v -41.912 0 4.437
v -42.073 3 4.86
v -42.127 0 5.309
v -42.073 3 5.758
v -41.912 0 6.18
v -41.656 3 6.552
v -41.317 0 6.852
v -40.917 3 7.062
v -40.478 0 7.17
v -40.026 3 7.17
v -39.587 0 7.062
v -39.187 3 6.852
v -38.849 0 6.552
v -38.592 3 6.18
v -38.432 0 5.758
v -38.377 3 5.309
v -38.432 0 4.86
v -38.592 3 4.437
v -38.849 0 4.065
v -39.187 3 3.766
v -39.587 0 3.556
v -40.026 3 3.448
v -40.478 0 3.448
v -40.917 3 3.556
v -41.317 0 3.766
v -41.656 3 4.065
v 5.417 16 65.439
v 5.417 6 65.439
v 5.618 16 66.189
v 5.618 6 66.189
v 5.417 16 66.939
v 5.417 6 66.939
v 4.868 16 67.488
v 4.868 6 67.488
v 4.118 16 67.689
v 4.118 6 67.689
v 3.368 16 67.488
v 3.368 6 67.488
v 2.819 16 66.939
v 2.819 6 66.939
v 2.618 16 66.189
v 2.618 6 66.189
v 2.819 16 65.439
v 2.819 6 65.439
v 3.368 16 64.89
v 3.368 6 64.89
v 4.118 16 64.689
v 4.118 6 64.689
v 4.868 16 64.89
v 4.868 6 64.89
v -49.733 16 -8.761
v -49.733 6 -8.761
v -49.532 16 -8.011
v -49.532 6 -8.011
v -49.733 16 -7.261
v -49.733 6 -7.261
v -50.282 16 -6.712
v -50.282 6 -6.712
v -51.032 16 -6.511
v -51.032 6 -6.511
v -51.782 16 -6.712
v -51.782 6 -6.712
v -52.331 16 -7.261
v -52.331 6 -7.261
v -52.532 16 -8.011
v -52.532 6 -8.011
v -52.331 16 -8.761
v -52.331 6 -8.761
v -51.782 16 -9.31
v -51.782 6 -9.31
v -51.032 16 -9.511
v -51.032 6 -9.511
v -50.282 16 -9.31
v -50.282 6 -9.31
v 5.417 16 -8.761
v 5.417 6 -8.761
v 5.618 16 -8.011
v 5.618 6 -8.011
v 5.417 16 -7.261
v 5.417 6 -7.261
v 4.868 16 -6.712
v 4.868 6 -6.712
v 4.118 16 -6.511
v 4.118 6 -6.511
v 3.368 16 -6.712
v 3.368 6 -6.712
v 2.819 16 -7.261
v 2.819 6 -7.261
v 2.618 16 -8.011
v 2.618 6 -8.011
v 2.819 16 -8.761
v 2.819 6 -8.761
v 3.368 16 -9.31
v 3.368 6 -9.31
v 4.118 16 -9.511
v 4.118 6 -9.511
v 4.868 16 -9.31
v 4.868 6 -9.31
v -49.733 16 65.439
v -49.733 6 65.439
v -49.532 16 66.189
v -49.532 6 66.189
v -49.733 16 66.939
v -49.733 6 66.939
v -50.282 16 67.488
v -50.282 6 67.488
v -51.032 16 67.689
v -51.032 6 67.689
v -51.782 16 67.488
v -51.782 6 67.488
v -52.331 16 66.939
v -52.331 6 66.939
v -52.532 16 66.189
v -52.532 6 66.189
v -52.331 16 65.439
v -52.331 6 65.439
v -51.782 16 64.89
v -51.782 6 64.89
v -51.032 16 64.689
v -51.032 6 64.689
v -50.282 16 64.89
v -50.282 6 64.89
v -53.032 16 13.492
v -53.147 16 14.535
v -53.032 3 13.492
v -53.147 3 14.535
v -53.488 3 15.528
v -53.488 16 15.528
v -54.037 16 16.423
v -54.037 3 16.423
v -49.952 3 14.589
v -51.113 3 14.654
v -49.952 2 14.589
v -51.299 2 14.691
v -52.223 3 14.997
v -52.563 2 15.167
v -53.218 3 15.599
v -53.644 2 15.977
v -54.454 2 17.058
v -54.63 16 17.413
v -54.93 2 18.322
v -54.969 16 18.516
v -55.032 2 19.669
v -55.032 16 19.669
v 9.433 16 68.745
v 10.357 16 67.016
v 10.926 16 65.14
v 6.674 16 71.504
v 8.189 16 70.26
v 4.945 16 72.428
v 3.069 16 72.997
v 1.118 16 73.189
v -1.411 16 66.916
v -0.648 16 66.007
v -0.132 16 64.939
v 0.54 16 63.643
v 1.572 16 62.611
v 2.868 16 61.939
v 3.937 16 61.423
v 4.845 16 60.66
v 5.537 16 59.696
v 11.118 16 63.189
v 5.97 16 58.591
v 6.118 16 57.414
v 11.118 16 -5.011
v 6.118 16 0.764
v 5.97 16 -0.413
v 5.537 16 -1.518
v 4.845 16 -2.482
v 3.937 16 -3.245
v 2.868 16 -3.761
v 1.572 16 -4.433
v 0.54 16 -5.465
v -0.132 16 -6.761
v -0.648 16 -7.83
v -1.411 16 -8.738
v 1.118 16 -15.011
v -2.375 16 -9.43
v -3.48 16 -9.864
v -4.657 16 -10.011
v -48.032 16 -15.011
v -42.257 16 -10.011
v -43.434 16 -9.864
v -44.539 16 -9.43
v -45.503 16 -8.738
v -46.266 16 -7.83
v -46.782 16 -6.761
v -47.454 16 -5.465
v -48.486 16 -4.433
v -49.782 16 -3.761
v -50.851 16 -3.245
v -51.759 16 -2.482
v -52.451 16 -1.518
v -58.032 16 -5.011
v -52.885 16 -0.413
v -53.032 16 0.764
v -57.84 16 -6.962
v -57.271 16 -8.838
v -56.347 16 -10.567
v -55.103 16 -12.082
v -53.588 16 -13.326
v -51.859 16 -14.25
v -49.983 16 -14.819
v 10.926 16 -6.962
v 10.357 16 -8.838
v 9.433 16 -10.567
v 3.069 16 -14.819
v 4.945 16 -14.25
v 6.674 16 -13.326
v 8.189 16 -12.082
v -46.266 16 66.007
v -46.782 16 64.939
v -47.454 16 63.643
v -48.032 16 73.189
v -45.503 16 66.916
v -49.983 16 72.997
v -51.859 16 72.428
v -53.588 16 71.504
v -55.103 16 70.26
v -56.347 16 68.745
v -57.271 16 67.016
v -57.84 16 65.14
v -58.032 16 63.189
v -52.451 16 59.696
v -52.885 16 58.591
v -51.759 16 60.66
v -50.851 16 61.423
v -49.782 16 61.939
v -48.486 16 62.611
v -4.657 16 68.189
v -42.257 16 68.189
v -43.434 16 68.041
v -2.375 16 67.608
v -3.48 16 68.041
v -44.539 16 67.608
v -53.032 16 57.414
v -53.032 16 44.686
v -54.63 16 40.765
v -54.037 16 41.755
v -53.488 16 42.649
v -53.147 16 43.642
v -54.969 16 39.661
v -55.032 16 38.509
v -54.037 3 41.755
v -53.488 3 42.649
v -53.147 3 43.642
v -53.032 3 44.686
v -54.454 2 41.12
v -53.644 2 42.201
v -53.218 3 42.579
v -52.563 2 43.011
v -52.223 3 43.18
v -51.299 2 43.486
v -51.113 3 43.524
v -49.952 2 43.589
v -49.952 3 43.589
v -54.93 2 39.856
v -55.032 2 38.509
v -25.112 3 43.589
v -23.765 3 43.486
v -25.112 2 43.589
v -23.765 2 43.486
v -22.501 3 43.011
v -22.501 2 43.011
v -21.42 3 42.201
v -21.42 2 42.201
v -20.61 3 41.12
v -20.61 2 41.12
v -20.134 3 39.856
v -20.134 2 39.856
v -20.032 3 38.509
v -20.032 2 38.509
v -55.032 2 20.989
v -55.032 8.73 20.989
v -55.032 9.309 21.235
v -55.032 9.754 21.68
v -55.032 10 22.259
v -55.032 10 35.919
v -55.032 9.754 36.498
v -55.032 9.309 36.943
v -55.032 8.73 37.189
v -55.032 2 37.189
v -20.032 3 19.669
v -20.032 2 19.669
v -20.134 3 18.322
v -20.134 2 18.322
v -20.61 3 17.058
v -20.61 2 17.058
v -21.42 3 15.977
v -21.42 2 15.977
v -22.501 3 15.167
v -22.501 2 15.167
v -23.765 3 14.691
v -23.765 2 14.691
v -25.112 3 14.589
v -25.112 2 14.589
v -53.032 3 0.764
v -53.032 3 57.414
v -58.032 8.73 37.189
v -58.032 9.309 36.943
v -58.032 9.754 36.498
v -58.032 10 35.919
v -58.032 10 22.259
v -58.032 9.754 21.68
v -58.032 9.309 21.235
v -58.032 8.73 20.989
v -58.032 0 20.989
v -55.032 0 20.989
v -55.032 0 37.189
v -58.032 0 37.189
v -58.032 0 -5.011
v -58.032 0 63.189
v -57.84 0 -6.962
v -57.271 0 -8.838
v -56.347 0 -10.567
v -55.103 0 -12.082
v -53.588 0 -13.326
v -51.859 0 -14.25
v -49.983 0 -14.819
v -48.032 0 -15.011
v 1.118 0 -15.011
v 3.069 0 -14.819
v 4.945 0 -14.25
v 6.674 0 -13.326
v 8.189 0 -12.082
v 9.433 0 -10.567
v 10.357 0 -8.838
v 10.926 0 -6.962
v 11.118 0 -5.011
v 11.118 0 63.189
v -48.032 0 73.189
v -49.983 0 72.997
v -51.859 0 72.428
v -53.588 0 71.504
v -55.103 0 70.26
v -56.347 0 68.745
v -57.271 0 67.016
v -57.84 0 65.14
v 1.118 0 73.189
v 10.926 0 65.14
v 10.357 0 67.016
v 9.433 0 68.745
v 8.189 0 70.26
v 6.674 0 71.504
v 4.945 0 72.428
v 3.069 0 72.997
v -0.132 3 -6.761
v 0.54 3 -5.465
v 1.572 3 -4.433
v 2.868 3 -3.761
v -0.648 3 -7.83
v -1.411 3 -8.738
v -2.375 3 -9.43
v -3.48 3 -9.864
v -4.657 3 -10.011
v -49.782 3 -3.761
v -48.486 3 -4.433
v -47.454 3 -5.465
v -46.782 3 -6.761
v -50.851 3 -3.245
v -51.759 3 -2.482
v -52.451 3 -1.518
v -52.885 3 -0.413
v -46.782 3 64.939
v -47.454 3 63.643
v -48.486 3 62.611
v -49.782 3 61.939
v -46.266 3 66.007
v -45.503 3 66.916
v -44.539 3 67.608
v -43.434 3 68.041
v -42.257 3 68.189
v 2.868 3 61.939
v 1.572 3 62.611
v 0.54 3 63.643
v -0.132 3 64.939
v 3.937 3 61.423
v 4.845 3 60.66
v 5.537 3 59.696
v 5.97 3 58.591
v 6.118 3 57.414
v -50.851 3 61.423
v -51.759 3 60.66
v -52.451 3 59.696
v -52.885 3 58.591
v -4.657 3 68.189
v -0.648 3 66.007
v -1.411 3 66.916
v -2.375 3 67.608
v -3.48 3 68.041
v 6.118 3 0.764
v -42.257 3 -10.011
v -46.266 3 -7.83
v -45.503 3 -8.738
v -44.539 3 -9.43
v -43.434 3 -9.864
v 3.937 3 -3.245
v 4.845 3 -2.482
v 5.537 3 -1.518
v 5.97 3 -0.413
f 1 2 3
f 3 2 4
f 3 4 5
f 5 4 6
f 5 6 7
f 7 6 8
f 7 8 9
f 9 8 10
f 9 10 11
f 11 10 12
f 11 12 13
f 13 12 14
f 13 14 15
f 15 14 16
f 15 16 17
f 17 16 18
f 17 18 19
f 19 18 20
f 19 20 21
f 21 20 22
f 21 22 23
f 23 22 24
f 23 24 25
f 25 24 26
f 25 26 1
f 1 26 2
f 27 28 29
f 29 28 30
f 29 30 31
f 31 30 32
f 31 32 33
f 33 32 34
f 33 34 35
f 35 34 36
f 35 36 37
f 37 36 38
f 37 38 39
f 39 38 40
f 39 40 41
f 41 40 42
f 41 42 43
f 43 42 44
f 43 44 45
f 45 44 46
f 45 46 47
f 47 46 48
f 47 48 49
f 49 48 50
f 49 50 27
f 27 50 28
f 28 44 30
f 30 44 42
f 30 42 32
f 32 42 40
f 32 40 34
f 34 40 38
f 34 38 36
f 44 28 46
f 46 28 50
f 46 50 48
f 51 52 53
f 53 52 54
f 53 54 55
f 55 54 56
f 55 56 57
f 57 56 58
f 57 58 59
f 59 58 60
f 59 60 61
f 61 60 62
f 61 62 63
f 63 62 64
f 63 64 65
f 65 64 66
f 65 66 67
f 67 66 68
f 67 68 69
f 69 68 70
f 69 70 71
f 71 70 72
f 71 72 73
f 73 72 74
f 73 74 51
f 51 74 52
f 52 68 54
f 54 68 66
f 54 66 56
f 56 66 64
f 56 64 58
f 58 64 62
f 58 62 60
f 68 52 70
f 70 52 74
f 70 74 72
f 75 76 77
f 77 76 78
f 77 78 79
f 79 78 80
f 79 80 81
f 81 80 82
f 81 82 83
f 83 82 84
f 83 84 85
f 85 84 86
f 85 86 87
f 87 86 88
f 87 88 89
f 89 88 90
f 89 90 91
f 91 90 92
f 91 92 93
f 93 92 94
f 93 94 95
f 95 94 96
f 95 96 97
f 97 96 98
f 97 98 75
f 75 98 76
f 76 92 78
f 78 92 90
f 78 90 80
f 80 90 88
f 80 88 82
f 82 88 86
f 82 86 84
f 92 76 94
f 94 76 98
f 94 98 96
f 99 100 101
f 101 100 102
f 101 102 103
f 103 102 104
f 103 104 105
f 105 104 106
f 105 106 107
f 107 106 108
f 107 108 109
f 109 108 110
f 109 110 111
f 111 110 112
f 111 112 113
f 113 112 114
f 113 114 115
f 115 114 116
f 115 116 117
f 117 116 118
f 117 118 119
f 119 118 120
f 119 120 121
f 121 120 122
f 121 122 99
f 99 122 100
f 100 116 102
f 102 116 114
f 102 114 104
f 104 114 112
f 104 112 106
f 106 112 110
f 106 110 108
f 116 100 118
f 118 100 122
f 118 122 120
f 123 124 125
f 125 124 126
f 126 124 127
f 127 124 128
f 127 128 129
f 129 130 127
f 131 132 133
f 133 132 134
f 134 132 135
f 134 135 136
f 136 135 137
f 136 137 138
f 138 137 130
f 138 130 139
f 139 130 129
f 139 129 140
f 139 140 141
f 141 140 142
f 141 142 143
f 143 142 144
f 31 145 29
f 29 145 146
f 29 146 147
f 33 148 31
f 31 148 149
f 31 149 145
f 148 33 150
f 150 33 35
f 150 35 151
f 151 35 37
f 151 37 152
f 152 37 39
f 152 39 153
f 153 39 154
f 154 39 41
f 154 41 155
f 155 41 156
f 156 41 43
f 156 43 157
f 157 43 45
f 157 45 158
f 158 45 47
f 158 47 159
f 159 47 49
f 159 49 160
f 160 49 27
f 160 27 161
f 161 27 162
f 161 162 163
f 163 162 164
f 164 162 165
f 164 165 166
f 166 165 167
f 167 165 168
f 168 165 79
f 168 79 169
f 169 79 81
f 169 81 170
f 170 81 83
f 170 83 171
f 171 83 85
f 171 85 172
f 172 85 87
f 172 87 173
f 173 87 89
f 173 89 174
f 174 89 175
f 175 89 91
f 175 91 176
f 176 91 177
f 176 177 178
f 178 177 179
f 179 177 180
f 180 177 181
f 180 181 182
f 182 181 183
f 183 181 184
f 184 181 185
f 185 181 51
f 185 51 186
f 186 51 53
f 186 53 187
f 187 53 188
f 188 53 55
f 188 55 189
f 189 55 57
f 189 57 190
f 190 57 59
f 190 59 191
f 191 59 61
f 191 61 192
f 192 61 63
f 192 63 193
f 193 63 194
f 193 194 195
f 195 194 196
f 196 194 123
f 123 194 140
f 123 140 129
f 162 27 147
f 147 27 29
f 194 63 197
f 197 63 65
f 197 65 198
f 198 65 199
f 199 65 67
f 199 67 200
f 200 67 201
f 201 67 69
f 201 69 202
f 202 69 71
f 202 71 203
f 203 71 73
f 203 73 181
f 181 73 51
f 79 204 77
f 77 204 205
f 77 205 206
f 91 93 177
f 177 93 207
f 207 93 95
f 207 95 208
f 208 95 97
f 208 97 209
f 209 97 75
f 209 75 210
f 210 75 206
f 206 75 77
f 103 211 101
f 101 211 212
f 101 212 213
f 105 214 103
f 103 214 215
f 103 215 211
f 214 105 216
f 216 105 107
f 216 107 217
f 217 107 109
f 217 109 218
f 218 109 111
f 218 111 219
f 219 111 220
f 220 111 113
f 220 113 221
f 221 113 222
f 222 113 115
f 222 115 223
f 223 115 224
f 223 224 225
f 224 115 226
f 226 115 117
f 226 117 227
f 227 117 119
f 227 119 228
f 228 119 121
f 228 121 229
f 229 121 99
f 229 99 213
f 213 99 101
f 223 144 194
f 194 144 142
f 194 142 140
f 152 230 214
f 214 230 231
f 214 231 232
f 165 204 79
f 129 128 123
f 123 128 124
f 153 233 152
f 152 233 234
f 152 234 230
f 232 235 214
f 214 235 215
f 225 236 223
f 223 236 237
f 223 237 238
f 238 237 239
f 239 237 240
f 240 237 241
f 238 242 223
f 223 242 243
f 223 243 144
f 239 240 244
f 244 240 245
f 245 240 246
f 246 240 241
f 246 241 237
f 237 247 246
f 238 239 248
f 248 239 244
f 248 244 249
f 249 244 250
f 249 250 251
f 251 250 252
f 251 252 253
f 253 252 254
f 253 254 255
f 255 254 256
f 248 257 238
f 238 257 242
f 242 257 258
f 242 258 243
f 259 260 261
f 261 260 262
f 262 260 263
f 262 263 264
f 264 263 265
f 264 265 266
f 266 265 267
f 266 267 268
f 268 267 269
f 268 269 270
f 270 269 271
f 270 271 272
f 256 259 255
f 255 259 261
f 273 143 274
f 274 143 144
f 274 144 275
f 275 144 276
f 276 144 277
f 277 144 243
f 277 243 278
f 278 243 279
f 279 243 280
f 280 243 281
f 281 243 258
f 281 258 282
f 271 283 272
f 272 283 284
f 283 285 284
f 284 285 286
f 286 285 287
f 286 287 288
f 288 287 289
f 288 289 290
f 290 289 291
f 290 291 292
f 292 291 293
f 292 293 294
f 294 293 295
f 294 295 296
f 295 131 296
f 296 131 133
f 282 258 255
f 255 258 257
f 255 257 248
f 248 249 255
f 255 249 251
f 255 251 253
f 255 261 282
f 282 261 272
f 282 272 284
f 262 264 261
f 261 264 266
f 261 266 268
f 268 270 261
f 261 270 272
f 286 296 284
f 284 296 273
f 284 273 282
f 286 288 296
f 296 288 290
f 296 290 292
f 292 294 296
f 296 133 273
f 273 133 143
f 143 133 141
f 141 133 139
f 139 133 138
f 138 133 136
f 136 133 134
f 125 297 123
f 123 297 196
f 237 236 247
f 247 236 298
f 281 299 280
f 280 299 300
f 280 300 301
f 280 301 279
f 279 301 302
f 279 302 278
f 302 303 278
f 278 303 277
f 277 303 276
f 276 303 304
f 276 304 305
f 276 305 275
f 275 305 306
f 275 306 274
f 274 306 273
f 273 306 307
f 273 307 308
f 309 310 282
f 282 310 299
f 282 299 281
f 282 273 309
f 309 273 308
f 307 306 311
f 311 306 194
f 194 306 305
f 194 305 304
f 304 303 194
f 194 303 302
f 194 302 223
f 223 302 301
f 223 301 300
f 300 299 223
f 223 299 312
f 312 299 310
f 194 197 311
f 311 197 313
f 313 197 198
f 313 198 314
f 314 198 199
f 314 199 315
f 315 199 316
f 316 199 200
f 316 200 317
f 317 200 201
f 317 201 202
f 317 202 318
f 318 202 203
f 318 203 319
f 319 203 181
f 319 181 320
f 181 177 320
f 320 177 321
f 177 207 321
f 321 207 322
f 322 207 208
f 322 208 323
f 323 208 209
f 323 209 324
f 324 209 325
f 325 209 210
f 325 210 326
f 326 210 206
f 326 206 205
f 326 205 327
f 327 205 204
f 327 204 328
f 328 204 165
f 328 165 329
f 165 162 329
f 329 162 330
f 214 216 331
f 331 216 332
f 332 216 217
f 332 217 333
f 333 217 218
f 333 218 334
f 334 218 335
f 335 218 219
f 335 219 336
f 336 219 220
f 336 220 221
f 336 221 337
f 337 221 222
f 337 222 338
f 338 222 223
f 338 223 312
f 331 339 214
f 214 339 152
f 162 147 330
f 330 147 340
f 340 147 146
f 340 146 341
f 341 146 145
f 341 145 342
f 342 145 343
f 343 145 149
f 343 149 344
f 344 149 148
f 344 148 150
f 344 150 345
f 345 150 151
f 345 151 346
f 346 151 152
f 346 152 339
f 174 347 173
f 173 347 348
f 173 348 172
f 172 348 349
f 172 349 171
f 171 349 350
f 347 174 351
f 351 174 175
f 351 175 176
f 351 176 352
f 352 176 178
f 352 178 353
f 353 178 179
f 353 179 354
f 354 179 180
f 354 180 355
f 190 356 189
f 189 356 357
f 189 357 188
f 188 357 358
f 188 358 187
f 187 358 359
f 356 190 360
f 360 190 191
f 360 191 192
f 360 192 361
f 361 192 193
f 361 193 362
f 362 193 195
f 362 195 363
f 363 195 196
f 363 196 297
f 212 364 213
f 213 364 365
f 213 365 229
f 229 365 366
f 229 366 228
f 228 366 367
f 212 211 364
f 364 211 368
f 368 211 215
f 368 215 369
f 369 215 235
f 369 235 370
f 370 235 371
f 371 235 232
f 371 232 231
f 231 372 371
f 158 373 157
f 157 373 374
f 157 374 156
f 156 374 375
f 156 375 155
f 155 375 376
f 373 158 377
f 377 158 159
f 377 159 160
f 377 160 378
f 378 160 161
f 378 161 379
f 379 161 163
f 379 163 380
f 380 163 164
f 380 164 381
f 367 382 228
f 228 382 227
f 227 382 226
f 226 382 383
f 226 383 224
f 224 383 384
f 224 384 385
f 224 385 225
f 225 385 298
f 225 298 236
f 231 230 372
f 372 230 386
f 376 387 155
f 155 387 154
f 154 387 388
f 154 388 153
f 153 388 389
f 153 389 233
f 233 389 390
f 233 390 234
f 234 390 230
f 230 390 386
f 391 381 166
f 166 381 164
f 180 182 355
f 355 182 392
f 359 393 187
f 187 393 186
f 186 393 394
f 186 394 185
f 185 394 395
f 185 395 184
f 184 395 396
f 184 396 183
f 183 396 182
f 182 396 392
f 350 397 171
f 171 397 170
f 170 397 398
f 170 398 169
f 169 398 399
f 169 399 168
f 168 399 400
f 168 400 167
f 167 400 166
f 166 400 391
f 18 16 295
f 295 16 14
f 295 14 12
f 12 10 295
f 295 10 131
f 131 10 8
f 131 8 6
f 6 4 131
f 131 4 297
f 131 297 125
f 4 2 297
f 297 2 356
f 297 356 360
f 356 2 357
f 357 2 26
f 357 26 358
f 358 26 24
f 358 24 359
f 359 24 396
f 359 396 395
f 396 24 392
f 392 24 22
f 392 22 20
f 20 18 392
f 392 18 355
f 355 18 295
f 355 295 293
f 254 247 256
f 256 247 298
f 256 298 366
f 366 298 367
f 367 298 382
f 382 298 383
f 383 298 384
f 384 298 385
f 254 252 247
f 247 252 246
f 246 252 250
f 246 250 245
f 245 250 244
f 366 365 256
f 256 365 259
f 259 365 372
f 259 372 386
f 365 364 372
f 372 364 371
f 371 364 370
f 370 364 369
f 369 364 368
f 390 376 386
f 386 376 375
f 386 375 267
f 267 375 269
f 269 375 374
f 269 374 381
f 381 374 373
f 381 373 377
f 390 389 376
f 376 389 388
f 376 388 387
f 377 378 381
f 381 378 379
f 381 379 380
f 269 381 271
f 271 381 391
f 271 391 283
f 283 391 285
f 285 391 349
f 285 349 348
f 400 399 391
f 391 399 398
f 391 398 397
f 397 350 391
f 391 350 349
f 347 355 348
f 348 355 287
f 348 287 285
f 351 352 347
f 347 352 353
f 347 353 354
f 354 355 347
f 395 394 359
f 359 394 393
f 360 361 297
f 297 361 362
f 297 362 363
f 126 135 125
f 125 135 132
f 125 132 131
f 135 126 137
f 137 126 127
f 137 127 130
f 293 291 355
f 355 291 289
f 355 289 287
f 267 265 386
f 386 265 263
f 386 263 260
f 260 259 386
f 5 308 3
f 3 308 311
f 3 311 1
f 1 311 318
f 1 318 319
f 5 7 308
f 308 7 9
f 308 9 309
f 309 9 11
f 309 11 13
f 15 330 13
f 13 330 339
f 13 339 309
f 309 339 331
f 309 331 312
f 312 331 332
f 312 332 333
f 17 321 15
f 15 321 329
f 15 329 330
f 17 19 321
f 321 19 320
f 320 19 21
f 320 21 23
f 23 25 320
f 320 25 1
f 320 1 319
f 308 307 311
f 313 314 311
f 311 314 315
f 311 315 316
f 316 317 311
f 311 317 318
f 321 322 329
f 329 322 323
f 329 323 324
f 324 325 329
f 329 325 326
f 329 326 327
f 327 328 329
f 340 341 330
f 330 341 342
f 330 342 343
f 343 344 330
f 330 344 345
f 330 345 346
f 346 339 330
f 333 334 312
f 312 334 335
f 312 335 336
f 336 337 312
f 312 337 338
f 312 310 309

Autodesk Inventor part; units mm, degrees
ref_plane "YZ Plane" through (0, 0, 0) normal (1, 0, 0) x (0, 1, 0)
ref_plane "XZ Plane" through (0, 0, 0) normal (0, 1, 0) x (-1, 0, 0)
ref_plane "XY Plane" through (0, 0, 0) normal (0, 0, 1) x (1, 0, 0)
sketch "Sketch1" plane through (0, 0, 0) normal (0, 1, 0) x (-1, 0, 0)
  line L0 (58.0321, 73.1889) -> (-11.1179, 73.1889)
  line L1 (-11.1179, 73.1889) -> (-11.1179, -15.0111)
  line L2 (-11.1179, -15.0111) -> (58.0321, -15.0111)
  line L3 (58.0321, -15.0111) -> (58.0321, 73.1889)
  point P0 (0, 0)
  dimension "d0" = 88.2
  dimension "d1" = 69.15
extrude "Extrusion1" add sketch "Sketch1" along normal blind 3
sketch "Sketch2" plane through (0, 3, 0) normal (0, 1, 0) x (1, 0, 0)
  line L0 (-58.0321, -73.1889) -> (11.1179, -73.1889) projected
  line L1 (11.1179, -73.1889) -> (11.1179, 15.0111) projected
  line L2 (-58.0321, -73.1889) -> (11.1179, -73.1889)
  line L3 (11.1179, -73.1889) -> (11.1179, 15.0111)
  line L4 (11.1179, 15.0111) -> (-58.0321, 15.0111)
  line L5 (-58.0321, 15.0111) -> (-58.0321, -73.1889)
  line L6 (-53.0321, -68.1889) -> (6.1179, -68.1889)
  line L7 (6.1179, -68.1889) -> (6.1179, 10.0111)
  line L8 (6.1179, 10.0111) -> (-53.0321, 10.0111)
  line L9 (-53.0321, 10.0111) -> (-53.0321, -68.1889)
  line L10 (-58.0321, 15.0111) -> (-58.0321, -73.1889) projected
  line L11 (-58.0321, -73.1889) -> (-47.0321, -73.1889)
  line L12 (-47.0321, -73.1889) -> (-47.0321, -62.1889)
  line L13 (-47.0321, -62.1889) -> (-58.0321, -62.1889)
  line L14 (-58.0321, -62.1889) -> (-58.0321, -73.1889)
  line L15 (-58.0321, 15.0111) -> (-47.0321, 15.0111)
  line L16 (-47.0321, 15.0111) -> (-47.0321, 4.0111)
  line L17 (-47.0321, 4.0111) -> (-58.0321, 4.0111)
  line L18 (-58.0321, 4.0111) -> (-58.0321, 15.0111)
  line L19 (11.1179, 15.0111) -> (0.1179, 15.0111)
  line L20 (0.1179, 15.0111) -> (0.1179, 4.0111)
  line L21 (0.1179, 4.0111) -> (11.1179, 4.0111)
  line L22 (11.1179, 4.0111) -> (11.1179, 15.0111)
  line L23 (11.1179, -73.1889) -> (0.1179, -73.1889)
  line L24 (0.1179, -73.1889) -> (0.1179, -62.1889)
  line L25 (0.1179, -62.1889) -> (11.1179, -62.1889)
  line L26 (11.1179, -62.1889) -> (11.1179, -73.1889)
  arc A0 (1.3427, -62.1889) -> (6.1179, -57.4137) centre (1.3427, -57.4137) ccw
  arc A1 (-4.6573, -68.1889) -> (0.1179, -63.4137) centre (-4.6573, -63.4137) ccw
  arc A2 (-47.0321, -63.4137) -> (-42.2569, -68.1889) centre (-42.2569, -63.4137) ccw
  arc A3 (-53.0321, -57.4137) -> (-48.2569, -62.1889) centre (-48.2569, -57.4137) ccw
  arc A4 (-48.2569, 4.0111) -> (-53.0321, -0.7641) centre (-48.2569, -0.7641) ccw
  arc A5 (-42.2569, 10.0111) -> (-47.0321, 5.2359) centre (-42.2569, 5.2359) ccw
  arc A6 (0.1179, 5.2359) -> (-4.6573, 10.0111) centre (-4.6573, 5.2359) ccw
  arc A7 (6.1179, -0.7641) -> (1.3427, 4.0111) centre (1.3427, -0.7641) ccw
  point P0 (0, 0)
  dimension "d4" = 5
  dimension "d5" = 5
  dimension "d6" = 5
  dimension "d7" = 5
  dimension "d8" = 6
  dimension "d9" = 6
  dimension "d10" = 6
  dimension "d11" = 6
  dimension "d12" = 6
  dimension "d13" = 6
  dimension "d14" = 6
  dimension "d15" = 6
  dimension "d16" = 4.7752
  dimension "d17" = 4.7752
  dimension "d18" = 4.7752
  dimension "d19" = 4.7752
  dimension "d20" = 4.7752
  dimension "d21" = 4.7752
  dimension "d22" = 4.7752
  dimension "d23" = 4.7752
  dimension "d24" = 4.7752
  dimension "d25" = 4.7752
  dimension "d26" = 4.7752
  dimension "d27" = 4.7752
  dimension "d28" = 4.7752
  dimension "d29" = 4.7752
  dimension "d30" = 4.7752
  dimension "d31" = 4.7752
  dimension "d32" = 4.7752
  dimension "d33" = 4.7752
  dimension "d34" = 4.7752
  dimension "d35" = 4.7752
  dimension "d36" = 4.7752
  dimension "d37" = 4.7752
  dimension "d38" = 4.7752
  dimension "d39" = 4.7752
extrude "Extrusion3" add sketch "Sketch2" along normal blind 13 contours L5 L13 L9 L6 L12 L0 | L12 L6 L24 L0 | L5 L17 L9 L13 | L24 L6 L7 L25 L1 L0 | L12 A2 L6 | L6 L9 L13 L12 | L5 L4 L16 L8 L9 L17 | L9 A3 L13 | L24 L25 L7 L6 | L6 A1 L24 | L17 A4 L9 | L9 L8 L16 L17 | L25 L7 L21 L1 | L4 L20 L8 L16 | L21 L7 L8 L20 L4 L1 | L25 A0 L7 | L8 A5 L16 | L21 L20 L8 L7 | L7 A7 L21 | L20 A6 L8
fillet "Fillet1" radius 4.7752 4 edges at (0.1179, 9.5, 62.1889) (-47.0321, 9.5, 62.1889) (-47.0321, 9.5, -4.0111) (0.1179, 9.5, -4.0111)
fillet "Fillet2" radius 10 4 edges at (11.1179, 8, 73.1889) (-58.0321, 8, 73.1889) (11.1179, 8, -15.0111) (-58.0321, 8, -15.0111)
sketch "Sketch4" plane through (11.1179, 0, 63.1889) normal (1, 0, 0) x (0, 0, -1)
  point P0 (63.1889, 0)
sketch "Sketch5" plane through (-58.0321, 0, -5.0111) normal (-1, 0, 0) x (0, 0, 1)
  line L0 (68.2, 0) -> (0, 0) projected
  line L1 (42.2, 0) -> (26, 0)
  line L2 (26, 0) -> (26, 10)
  line L3 (26, 10) -> (42.2, 10)
  line L4 (42.2, 10) -> (42.2, 0)
  line L5 (78.2, 0) -> (78.2, 16) projected
  line L6 (-10, 16) -> (-10, 0) projected
  arc A0 (42.2, 8.73) -> (40.93, 10) centre (40.5854, 8.3854) ccw
  arc A1 (27.27, 10) -> (26, 8.73) centre (27.6146, 8.3854) ccw
  point P0 (5.0111, 0)
  dimension "d48" = 10
  dimension "d49" = 16.2
  dimension "d50" = 1.27
  dimension "d51" = 1.27
  dimension "d52" = 1.27
  dimension "d53" = 1.27
  dimension "d54" = 1.651
  dimension "d55" = 1.651
  dimension "d58" = 88.2
  dimension "d59" = 36
  dimension "d60" = 36
extrude "Extrusion4" cut sketch "Sketch5" against normal blind 3 contours L0 L2 A1 L3 A0 L4
sketch "Sketch7" plane through (0, 16, 0) normal (0, 1, 0) x (1, 0, 0)
  line L0 (-53.0321, -0.7641) -> (-53.0321, -57.4137) projected
  line L1 (-53.0321, -43.5889) -> (-55.0321, -43.5889)
  line L2 (-55.0321, -43.5889) -> (-55.0321, -14.5889)
  line L3 (-55.0321, -14.5889) -> (-53.0321, -14.5889)
  line L4 (-53.0321, -14.5889) -> (-53.0321, -43.5889)
  line L5 (-48.0321, -73.1889) -> (1.1179, -73.1889) projected
  line L6 (1.1179, 15.0111) -> (-48.0321, 15.0111) projected
  line L7 (-55.0321, -43.5889) -> (-20.0321, -43.5889)
  line L8 (-20.0321, -43.5889) -> (-20.0321, -14.5889)
  line L9 (-20.0321, -14.5889) -> (-55.0321, -14.5889)
  line L10 (-55.0321, -14.5889) -> (-55.0321, -43.5889)
  arc A0 (-55.0321, -38.5089) -> (-49.9521, -43.5889) centre (-50.2673, -38.8241) ccw
  arc A1 (-49.9521, -14.5889) -> (-55.0321, -19.6689) centre (-50.2673, -19.3536) ccw
  arc A2 (-25.1121, -43.5889) -> (-20.0321, -38.5089) centre (-24.7969, -38.8241) ccw
  arc A3 (-20.0321, -19.6689) -> (-25.1121, -14.5889) centre (-24.7969, -19.3536) ccw
  point P0 (0, 0)
  dimension "d61" = 29.6
  dimension "d62" = 88.2
  dimension "d63" = 29
  dimension "d64" = 2
  dimension "d65" = 35
  dimension "d66" = 5.08
  dimension "d67" = 5.08
  dimension "d68" = 5.08
  dimension "d69" = 5.08
  dimension "d70" = 5.08
  dimension "d71" = 5.08
  dimension "d72" = 5.08
  dimension "d73" = 5.08
  dimension "d75" = 4.7752
  dimension "d76" = 4.7752
  dimension "d77" = 4.7752
  dimension "d78" = 29
  dimension "d82" = 4.7752
  dimension "d107" = 18.84
extrude "Extrusion5" cut sketch "Sketch7" against normal blind 14 contours A1 L9 A3 L8 A2 L7 A0 L0 | L0 A0 L2 A1 | A1 L9 | L2 A1 | A0 L2 | L7 A0 | A3 L9 | L7 A2 | A3 L8 | L8 A2
fillet "Fillet3" radius 4.7752 2 edges at (-53.0321, 9.5, 42.7175) (-53.0321, 9.5, 15.4602)
sketch "Sketch8" plane through (0, 16, 0) normal (0, 1, 0) x (1, 0, 0)
  line L0 (-48.0321, -73.1889) -> (1.1179, -73.1889) projected
  line L1 (-58.0321, 5.0111) -> (-58.0321, -63.1889) projected
  line L2 (11.1179, -63.1889) -> (11.1179, 5.0111) projected
  line L3 (1.1179, 15.0111) -> (-48.0321, 15.0111) projected
  point P0 (0, 0)
  point P1 (-51.0321, 8.0111)
  point P2 (4.1179, 8.0111)
  point P3 (4.1179, -66.1889)
  point P4 (-51.0321, -66.1889)
  dimension "d83" = 7
  dimension "d84" = 7
  dimension "d85" = 7
  dimension "d86" = 7
  dimension "d87" = 7
  dimension "d88" = 7
  dimension "d89" = 7
  dimension "d90" = 7
hole "Hole1" at (-51.0321, 16, -8.0111) at (4.1179, 16, -8.0111) at (4.1179, 16, 66.1889) at (-51.0321, 16, 66.1889) direction (0, -1, 0) diameter 3 depth 10
sketch "Sketch9" plane through (0, 3, 0) normal (0, 1, 0) x (1, 0, 0)
  line L0 (1.1179, 15.0111) -> (-48.0321, 15.0111) projected
  line L1 (-58.0321, 5.0111) -> (-58.0321, -63.1889) projected
  point P0 (0, 0)
  point P1 (-40.2521, -5.3089)
  dimension "d98" = 20.32
  dimension "d99" = 17.78
hole "Hole2" at (-40.2521, 3, 5.3089) direction (0, -1, 0) diameter 3.75 depth 10
equation "\"d5\" = d4"
equation "\"d6\" = d4"
equation "\"d7\" = d4"
equation "\"d9\" = d8"
equation "\"d10\" = d8"
equation "\"d11\" = d8"
equation "\"d12\" = d8"
equation "\"d14\" = d8"
equation "\"d15\" = d9"
equation "\"d17\" = d16"
equation "\"d18\" = d16"
equation "\"d19\" = d18"
equation "\"d25\" = d24"
equation "\"d26\" = d25"
equation "\"d27\" = d25"
equation "\"d28\" = d21"
equation "\"d29\" = d28"
equation "\"d30\" = d16"
equation "\"d31\" = d28"
equation "\"d32\" = d31"
equation "\"d33\" = d30"
equation "\"d34\" = d31"
equation "\"d35\" = d34"
equation "\"d36\" = d33"
equation "\"d37\" = d34"
equation "\"d38\" = d37"
equation "\"d39\" = d36"
equation "\"d51\" = d50"
equation "\"d52\" = d50"
equation "\"d53\" = d50"
equation "\"d54\" = d55"
equation "\"d59\" = -0.5 * d49 + 0.5 * d58"
equation "\"d61\" = -0.5 * d63 + 0.5 * d62"
equation "\"d67\" = d66"
equation "\"d68\" = d67"
equation "\"d69\" = d68"
equation "\"d70\" = d67"
equation "\"d71\" = d70"
equation "\"d72\" = d73"
equation "\"d73\" = d71"
equation "\"d76\" = d74"
equation "\"d77\" = d74"
equation "\"d78\" = d63"
equation "\"d82\" = d75"
equation "\"d84\" = d83"
equation "\"d85\" = d83"
equation "\"d86\" = d83"
equation "\"d87\" = d83"
equation "\"d88\" = d87"
equation "\"d89\" = d88"
equation "\"d90\" = d88"
equation "\"d74\" = 4.7752"
properties part number "macropad-frame-v2"
